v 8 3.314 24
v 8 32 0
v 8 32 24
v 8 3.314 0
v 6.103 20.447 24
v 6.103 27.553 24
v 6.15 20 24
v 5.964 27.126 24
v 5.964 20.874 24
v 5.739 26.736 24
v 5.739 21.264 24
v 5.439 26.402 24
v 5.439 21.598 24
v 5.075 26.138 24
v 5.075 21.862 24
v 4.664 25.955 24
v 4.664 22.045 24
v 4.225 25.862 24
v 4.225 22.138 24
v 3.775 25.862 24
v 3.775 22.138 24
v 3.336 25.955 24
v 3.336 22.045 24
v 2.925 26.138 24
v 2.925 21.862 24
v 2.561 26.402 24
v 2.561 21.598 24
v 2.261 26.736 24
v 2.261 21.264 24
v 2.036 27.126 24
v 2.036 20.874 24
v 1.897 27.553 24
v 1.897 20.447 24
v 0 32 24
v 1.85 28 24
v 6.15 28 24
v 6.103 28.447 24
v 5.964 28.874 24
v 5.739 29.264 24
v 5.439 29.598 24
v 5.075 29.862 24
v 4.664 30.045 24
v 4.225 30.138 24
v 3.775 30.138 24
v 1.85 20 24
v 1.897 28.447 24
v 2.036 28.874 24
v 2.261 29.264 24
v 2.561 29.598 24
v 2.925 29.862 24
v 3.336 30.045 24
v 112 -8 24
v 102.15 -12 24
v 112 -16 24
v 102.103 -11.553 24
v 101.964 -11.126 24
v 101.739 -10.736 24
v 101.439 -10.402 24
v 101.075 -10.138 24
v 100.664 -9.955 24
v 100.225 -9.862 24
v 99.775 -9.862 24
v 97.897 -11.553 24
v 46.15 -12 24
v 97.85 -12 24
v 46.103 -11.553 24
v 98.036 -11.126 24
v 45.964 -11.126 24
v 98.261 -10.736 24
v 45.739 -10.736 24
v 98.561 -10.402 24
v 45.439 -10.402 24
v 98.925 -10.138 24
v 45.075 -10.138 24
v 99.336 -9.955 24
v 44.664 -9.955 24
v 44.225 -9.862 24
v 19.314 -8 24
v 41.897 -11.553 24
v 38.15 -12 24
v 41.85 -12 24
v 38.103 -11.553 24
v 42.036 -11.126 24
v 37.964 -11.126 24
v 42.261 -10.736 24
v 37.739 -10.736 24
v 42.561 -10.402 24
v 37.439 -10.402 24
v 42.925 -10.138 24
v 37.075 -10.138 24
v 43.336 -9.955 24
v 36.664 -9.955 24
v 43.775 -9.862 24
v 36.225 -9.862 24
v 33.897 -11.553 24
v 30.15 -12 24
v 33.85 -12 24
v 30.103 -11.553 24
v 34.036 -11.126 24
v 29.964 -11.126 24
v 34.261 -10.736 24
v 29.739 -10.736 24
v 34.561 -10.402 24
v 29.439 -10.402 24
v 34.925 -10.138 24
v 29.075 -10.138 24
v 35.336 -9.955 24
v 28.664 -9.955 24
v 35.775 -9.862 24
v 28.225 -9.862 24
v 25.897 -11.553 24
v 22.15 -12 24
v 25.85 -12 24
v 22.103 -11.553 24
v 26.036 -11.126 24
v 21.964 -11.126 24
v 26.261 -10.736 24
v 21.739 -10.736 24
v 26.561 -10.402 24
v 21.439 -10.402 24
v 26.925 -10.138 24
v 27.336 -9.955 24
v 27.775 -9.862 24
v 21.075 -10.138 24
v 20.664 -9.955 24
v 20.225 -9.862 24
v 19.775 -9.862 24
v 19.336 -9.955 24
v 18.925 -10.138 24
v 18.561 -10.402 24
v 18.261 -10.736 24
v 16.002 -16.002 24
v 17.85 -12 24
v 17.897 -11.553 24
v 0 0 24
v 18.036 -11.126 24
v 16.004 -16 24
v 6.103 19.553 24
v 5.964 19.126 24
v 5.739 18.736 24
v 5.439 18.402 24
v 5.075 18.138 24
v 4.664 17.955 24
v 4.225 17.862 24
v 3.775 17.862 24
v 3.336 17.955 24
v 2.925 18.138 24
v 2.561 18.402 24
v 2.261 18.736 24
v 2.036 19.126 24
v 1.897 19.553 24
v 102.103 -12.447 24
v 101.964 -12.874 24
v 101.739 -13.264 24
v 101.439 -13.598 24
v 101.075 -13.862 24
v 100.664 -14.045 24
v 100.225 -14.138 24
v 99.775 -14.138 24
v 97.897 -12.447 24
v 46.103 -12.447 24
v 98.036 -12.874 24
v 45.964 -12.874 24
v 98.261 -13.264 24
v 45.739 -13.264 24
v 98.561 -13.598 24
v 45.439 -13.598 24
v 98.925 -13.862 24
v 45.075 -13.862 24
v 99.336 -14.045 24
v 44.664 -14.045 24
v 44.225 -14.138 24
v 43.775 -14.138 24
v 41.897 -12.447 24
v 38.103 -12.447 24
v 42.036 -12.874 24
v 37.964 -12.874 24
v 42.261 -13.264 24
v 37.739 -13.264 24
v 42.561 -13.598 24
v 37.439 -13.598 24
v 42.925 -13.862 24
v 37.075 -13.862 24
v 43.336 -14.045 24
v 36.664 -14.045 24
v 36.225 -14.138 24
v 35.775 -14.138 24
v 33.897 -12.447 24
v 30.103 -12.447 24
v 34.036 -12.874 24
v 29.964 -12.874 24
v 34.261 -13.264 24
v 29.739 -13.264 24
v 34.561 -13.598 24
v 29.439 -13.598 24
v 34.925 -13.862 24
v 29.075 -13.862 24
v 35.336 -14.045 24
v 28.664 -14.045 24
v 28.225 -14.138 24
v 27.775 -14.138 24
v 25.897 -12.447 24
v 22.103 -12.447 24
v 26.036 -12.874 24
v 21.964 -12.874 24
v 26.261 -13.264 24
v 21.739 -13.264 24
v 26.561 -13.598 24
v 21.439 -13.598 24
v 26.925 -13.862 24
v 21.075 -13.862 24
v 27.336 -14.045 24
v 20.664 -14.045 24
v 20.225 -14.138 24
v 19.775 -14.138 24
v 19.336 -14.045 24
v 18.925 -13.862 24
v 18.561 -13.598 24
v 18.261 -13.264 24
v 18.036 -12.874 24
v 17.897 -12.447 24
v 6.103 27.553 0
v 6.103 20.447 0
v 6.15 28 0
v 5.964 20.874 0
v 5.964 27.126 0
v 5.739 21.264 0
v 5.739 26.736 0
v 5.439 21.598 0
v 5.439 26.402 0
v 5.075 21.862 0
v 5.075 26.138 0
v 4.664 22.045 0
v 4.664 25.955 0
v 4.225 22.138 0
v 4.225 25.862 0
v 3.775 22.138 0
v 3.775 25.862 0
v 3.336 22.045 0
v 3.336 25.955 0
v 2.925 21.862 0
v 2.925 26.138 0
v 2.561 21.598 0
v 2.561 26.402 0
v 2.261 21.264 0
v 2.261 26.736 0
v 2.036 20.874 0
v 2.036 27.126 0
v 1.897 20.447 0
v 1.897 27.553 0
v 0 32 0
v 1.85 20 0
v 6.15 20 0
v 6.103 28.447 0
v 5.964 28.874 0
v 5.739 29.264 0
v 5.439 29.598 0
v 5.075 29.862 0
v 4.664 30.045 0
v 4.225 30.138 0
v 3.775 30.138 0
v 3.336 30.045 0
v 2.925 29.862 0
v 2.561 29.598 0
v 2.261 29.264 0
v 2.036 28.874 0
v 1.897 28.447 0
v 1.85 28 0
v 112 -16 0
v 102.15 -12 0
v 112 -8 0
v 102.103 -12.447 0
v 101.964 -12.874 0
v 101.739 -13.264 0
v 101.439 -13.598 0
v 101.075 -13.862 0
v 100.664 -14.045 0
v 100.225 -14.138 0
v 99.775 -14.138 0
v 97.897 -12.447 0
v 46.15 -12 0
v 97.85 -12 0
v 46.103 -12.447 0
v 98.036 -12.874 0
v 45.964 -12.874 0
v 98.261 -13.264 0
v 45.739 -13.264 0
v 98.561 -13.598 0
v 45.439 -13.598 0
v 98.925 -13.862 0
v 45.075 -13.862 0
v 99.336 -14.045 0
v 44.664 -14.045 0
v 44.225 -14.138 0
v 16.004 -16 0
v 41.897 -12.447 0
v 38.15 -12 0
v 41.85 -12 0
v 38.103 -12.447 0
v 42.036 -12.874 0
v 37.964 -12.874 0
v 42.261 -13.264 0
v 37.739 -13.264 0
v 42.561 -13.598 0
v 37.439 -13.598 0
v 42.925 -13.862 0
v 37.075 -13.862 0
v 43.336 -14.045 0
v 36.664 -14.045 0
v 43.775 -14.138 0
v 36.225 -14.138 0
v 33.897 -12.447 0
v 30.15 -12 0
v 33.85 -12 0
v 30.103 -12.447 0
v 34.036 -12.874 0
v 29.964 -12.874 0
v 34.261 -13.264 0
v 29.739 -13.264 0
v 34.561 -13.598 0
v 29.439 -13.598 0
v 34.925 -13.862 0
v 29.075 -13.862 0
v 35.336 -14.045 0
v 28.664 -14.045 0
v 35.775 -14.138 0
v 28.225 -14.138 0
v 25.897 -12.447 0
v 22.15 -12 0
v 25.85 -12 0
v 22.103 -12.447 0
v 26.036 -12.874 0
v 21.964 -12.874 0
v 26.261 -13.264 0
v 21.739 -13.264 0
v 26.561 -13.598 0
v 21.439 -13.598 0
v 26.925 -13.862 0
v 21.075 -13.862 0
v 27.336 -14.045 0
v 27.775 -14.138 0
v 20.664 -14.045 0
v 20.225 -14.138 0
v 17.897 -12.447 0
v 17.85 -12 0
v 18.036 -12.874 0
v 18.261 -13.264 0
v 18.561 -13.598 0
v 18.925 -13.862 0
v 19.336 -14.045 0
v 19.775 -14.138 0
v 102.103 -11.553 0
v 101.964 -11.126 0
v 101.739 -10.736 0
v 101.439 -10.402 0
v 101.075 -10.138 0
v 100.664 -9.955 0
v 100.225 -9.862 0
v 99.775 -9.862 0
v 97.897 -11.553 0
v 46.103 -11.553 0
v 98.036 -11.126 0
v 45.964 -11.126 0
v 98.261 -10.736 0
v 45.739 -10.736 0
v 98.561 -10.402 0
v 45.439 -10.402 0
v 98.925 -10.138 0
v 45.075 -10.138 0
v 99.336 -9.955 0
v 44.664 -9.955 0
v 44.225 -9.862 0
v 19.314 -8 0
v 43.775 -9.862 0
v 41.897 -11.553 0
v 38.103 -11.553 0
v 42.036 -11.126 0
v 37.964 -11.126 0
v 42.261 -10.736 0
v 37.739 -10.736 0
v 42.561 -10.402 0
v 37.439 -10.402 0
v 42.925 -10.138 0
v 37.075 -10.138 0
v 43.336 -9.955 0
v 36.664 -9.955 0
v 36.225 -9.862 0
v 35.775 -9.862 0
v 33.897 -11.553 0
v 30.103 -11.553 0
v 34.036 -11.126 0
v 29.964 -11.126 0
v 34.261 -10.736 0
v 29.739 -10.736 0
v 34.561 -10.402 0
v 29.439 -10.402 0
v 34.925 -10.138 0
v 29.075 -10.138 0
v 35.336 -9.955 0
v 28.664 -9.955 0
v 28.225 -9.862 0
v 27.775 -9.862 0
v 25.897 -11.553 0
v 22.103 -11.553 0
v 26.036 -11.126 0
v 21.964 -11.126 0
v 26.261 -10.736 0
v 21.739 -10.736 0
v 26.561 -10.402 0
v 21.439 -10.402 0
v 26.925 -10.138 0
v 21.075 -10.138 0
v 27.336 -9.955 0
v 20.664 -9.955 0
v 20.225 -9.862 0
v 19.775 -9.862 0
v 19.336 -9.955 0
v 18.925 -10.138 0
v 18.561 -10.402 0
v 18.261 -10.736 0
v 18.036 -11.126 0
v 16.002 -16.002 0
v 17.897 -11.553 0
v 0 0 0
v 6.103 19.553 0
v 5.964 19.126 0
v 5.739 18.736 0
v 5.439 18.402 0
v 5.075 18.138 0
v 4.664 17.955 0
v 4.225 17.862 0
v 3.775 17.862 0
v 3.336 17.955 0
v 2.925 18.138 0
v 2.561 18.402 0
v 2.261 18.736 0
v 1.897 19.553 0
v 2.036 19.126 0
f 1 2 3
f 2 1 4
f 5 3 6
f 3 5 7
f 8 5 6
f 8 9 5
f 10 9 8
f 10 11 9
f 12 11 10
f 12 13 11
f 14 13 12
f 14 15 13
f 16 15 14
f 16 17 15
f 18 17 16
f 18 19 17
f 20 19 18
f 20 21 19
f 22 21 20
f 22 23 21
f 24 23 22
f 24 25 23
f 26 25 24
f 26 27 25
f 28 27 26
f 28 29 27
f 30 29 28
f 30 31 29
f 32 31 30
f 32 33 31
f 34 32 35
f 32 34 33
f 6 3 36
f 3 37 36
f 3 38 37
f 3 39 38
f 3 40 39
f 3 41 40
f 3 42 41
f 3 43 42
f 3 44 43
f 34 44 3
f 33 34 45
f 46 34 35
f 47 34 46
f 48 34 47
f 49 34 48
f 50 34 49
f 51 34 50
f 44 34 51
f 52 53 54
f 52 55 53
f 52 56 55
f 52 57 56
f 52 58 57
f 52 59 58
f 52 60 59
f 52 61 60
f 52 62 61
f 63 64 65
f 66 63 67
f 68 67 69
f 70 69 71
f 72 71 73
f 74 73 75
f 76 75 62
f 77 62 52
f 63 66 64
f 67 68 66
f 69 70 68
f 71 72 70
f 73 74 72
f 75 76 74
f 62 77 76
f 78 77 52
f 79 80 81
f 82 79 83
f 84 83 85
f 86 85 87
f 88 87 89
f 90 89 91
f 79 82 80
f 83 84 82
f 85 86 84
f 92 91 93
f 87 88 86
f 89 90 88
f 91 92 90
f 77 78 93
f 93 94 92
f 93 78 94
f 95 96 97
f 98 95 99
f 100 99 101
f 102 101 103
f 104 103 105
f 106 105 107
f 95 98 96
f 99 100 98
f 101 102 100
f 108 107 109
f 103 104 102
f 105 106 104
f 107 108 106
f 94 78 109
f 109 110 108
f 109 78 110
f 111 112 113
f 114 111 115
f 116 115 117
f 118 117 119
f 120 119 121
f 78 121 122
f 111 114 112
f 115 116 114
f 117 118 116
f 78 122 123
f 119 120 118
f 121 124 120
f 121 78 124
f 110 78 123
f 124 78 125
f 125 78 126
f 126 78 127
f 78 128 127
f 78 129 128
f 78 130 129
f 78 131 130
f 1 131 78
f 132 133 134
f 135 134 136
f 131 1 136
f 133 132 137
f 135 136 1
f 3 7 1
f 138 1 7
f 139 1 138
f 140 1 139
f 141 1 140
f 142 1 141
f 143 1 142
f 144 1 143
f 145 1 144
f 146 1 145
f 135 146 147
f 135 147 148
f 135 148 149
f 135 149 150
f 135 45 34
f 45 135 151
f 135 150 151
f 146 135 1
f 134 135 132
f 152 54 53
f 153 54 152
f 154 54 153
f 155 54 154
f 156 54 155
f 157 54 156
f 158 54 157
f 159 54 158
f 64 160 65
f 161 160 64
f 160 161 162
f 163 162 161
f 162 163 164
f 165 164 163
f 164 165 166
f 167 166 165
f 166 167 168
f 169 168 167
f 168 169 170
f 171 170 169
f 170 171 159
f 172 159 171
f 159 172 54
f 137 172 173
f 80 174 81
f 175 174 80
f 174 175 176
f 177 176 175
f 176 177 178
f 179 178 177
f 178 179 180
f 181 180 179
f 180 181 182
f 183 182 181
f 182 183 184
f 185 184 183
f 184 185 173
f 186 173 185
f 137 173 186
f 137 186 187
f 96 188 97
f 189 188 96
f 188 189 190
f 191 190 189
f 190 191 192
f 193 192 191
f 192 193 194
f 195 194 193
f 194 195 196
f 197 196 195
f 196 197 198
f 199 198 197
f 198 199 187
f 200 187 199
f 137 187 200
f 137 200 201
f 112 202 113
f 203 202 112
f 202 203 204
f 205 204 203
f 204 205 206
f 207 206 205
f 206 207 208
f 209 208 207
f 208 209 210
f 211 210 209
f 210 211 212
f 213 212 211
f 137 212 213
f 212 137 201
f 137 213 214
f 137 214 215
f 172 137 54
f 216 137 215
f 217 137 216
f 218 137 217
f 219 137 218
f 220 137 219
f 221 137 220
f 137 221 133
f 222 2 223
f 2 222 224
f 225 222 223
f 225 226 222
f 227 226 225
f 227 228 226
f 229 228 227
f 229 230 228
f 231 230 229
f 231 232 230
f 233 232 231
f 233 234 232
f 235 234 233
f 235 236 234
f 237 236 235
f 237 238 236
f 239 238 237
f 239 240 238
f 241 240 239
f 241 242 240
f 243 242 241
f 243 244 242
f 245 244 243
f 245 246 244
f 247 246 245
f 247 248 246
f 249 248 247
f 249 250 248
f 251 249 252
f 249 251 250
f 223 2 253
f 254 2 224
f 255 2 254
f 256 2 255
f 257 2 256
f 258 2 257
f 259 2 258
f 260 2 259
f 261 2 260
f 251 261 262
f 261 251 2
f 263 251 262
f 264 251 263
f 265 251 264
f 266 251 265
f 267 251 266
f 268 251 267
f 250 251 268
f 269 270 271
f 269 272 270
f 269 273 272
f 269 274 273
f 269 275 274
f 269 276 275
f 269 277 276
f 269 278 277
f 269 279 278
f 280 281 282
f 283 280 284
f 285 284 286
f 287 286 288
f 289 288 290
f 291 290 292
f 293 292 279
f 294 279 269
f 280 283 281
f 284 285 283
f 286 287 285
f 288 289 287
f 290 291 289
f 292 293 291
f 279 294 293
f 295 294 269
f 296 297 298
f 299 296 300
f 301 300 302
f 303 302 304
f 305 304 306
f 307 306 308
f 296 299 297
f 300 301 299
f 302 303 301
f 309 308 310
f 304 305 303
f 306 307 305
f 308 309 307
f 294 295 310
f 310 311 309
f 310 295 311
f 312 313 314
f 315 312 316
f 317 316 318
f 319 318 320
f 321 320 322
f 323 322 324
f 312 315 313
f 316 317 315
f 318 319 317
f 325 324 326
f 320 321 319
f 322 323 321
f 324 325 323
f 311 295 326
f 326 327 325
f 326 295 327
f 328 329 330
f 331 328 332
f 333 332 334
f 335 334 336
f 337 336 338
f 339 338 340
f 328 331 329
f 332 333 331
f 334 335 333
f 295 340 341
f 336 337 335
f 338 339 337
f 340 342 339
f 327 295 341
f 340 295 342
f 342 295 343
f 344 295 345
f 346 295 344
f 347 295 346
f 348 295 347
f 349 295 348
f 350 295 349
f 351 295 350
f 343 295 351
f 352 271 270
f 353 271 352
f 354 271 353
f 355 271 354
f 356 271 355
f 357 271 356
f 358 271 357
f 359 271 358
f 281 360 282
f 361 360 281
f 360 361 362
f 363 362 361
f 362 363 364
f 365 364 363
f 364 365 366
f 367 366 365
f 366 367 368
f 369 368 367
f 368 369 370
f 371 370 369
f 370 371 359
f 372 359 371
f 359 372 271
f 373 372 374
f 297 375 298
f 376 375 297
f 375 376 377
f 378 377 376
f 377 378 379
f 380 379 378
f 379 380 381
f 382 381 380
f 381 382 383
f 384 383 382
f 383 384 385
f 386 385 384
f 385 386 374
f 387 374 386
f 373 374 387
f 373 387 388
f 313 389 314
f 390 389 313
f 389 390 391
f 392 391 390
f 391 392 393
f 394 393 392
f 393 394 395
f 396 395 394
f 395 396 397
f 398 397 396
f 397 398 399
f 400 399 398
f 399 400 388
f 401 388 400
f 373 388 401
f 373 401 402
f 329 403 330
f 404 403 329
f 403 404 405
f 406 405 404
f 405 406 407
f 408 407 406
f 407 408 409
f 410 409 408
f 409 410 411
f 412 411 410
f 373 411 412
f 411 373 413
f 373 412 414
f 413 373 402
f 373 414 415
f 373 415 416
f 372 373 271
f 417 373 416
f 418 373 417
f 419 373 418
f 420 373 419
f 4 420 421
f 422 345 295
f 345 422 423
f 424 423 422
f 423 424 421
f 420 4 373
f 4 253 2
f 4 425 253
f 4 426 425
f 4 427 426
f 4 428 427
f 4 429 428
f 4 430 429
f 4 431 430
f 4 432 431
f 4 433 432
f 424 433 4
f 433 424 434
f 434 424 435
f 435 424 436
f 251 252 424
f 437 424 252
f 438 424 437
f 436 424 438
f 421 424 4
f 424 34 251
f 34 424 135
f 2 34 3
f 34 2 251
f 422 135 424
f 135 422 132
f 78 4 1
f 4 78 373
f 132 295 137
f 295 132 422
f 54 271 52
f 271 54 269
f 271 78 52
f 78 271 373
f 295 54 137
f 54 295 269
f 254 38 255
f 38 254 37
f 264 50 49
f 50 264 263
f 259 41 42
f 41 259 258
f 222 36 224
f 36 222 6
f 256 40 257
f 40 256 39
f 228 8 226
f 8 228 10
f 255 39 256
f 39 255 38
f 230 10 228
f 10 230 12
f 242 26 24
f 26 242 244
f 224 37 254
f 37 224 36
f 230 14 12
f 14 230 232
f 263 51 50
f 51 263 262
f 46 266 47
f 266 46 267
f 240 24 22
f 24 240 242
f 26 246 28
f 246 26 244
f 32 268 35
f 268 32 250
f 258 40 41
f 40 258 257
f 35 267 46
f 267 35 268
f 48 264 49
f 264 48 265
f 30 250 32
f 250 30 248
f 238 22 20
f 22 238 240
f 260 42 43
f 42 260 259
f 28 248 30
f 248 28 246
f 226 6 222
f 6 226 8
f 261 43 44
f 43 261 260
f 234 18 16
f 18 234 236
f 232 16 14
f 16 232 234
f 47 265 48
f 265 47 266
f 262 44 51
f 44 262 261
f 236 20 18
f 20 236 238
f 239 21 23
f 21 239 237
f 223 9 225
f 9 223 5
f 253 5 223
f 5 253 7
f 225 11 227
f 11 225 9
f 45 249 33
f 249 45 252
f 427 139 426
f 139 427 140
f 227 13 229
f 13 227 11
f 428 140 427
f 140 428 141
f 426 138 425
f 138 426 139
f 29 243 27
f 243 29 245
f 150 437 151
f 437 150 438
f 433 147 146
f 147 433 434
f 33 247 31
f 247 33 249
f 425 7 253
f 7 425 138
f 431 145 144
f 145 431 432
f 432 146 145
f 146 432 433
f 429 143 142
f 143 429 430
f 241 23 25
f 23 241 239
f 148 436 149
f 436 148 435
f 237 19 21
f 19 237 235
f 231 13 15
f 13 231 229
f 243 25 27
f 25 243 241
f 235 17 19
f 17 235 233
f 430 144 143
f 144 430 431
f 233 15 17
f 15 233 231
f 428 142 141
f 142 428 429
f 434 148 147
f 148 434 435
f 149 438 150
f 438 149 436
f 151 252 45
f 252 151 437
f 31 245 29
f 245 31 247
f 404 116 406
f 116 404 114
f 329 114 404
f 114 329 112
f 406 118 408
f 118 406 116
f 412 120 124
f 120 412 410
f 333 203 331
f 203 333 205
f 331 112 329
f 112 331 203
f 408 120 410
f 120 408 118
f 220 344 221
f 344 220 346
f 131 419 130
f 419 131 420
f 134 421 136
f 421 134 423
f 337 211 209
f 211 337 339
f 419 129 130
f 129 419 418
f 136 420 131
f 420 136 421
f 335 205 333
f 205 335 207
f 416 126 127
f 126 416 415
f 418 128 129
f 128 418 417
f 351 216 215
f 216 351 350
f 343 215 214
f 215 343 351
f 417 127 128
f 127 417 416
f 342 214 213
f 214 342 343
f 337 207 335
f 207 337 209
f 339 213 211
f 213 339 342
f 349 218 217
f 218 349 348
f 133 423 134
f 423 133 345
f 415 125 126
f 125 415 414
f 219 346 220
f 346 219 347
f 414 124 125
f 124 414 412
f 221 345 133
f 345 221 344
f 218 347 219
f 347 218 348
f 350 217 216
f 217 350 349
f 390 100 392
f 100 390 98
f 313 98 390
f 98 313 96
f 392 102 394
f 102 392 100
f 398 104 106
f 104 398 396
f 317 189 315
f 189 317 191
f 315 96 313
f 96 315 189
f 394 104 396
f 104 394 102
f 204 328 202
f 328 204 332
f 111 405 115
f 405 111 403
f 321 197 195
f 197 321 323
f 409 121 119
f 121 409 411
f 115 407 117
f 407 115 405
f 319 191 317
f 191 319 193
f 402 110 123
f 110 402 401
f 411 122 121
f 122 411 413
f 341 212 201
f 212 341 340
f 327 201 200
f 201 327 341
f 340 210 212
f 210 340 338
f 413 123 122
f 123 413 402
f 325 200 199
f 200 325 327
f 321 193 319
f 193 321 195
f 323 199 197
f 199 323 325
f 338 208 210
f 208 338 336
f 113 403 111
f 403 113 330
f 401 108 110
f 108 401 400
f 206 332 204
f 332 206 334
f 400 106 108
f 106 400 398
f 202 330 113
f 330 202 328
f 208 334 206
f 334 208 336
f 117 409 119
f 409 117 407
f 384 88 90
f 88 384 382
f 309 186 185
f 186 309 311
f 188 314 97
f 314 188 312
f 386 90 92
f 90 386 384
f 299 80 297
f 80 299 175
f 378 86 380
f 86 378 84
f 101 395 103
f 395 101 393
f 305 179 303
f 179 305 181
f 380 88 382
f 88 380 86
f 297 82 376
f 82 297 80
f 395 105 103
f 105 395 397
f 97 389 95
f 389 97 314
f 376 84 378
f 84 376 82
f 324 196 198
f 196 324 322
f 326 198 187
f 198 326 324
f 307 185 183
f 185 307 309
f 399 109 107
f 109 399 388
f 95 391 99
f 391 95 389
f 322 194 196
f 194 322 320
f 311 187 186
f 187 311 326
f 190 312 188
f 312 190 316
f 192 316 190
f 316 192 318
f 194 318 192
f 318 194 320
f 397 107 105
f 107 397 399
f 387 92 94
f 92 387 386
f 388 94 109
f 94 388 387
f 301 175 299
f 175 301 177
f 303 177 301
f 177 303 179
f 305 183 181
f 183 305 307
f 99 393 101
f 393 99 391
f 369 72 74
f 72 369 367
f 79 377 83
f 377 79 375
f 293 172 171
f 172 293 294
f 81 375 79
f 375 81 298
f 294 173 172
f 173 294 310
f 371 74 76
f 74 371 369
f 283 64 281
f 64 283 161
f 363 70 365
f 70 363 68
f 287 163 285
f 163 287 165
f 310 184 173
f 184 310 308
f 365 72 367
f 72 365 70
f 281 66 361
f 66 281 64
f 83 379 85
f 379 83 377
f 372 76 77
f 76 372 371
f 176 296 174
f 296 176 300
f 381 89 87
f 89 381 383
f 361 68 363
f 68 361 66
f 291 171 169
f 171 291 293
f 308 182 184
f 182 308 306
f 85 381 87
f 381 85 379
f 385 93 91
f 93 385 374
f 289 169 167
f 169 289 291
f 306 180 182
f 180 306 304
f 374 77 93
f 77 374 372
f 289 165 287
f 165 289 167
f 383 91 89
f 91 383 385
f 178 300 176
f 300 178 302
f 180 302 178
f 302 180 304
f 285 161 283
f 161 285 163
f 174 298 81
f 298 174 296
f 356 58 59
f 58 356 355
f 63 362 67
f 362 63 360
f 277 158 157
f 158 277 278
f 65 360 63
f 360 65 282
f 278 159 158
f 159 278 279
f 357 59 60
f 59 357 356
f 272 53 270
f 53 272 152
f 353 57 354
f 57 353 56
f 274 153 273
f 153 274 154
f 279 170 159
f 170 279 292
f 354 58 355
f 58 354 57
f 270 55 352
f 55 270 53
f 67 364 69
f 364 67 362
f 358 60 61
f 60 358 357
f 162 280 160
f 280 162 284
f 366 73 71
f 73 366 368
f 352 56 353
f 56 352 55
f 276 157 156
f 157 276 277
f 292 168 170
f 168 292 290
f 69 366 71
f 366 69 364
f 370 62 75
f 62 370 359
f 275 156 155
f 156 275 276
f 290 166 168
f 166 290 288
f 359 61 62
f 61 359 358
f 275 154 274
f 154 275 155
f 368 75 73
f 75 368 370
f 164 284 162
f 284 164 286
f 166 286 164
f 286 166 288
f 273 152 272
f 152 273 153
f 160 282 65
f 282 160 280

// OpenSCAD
// Top track part. Height of part is 24mm. Holes r=2.15mm, d=4.3mm.

difference() {
union() {
    // Sections are numbered from top to bottom, left to right
    // Section 1
    cube([8,32,24]);
    
    // Section 2 at a 45º angle
    translate([5.6568,5.6568,0])
    rotate([0,0,225])
    cube([8,22.63,24]);
    
    // Section 3
    translate([16,-16,0])
    cube([96,8,24]);
    
}
    // Holes are numbered from top to bottom, left to right
    // Hole 1 (compatible with lego board)
    translate([4,28,-2])
    cylinder(r=2.15,44, $fn=30);

    // Hole 2
    translate([4,20,-2])
    cylinder(r=2.15,44, $fn=30);

    // Hole 3
    translate([20,-12,-2])
    cylinder(r=2.15,45, $fn=30);

    // Hole 4
    translate([28,-12,-2])
    cylinder(r=2.15,45, $fn=30);

    // Hole 5 (compatible with lego board)
    translate([36,-12,-2])
    cylinder(r=2.15,45, $fn=30);

    // Hole 6 (compatible with lego board)
    translate([44,-12,-2])
    cylinder(r=2.15,45, $fn=30);
    
    // Hole 7
    translate([100,-12,-2])
    cylinder(r=2.15,44, $fn=30);
    
}
/*/ base plate positioned for top track
color ("blue")
translate([-80,-160,-6])
import("/Users/harperdaniels/Downloads/plate-2.stl");
*/
